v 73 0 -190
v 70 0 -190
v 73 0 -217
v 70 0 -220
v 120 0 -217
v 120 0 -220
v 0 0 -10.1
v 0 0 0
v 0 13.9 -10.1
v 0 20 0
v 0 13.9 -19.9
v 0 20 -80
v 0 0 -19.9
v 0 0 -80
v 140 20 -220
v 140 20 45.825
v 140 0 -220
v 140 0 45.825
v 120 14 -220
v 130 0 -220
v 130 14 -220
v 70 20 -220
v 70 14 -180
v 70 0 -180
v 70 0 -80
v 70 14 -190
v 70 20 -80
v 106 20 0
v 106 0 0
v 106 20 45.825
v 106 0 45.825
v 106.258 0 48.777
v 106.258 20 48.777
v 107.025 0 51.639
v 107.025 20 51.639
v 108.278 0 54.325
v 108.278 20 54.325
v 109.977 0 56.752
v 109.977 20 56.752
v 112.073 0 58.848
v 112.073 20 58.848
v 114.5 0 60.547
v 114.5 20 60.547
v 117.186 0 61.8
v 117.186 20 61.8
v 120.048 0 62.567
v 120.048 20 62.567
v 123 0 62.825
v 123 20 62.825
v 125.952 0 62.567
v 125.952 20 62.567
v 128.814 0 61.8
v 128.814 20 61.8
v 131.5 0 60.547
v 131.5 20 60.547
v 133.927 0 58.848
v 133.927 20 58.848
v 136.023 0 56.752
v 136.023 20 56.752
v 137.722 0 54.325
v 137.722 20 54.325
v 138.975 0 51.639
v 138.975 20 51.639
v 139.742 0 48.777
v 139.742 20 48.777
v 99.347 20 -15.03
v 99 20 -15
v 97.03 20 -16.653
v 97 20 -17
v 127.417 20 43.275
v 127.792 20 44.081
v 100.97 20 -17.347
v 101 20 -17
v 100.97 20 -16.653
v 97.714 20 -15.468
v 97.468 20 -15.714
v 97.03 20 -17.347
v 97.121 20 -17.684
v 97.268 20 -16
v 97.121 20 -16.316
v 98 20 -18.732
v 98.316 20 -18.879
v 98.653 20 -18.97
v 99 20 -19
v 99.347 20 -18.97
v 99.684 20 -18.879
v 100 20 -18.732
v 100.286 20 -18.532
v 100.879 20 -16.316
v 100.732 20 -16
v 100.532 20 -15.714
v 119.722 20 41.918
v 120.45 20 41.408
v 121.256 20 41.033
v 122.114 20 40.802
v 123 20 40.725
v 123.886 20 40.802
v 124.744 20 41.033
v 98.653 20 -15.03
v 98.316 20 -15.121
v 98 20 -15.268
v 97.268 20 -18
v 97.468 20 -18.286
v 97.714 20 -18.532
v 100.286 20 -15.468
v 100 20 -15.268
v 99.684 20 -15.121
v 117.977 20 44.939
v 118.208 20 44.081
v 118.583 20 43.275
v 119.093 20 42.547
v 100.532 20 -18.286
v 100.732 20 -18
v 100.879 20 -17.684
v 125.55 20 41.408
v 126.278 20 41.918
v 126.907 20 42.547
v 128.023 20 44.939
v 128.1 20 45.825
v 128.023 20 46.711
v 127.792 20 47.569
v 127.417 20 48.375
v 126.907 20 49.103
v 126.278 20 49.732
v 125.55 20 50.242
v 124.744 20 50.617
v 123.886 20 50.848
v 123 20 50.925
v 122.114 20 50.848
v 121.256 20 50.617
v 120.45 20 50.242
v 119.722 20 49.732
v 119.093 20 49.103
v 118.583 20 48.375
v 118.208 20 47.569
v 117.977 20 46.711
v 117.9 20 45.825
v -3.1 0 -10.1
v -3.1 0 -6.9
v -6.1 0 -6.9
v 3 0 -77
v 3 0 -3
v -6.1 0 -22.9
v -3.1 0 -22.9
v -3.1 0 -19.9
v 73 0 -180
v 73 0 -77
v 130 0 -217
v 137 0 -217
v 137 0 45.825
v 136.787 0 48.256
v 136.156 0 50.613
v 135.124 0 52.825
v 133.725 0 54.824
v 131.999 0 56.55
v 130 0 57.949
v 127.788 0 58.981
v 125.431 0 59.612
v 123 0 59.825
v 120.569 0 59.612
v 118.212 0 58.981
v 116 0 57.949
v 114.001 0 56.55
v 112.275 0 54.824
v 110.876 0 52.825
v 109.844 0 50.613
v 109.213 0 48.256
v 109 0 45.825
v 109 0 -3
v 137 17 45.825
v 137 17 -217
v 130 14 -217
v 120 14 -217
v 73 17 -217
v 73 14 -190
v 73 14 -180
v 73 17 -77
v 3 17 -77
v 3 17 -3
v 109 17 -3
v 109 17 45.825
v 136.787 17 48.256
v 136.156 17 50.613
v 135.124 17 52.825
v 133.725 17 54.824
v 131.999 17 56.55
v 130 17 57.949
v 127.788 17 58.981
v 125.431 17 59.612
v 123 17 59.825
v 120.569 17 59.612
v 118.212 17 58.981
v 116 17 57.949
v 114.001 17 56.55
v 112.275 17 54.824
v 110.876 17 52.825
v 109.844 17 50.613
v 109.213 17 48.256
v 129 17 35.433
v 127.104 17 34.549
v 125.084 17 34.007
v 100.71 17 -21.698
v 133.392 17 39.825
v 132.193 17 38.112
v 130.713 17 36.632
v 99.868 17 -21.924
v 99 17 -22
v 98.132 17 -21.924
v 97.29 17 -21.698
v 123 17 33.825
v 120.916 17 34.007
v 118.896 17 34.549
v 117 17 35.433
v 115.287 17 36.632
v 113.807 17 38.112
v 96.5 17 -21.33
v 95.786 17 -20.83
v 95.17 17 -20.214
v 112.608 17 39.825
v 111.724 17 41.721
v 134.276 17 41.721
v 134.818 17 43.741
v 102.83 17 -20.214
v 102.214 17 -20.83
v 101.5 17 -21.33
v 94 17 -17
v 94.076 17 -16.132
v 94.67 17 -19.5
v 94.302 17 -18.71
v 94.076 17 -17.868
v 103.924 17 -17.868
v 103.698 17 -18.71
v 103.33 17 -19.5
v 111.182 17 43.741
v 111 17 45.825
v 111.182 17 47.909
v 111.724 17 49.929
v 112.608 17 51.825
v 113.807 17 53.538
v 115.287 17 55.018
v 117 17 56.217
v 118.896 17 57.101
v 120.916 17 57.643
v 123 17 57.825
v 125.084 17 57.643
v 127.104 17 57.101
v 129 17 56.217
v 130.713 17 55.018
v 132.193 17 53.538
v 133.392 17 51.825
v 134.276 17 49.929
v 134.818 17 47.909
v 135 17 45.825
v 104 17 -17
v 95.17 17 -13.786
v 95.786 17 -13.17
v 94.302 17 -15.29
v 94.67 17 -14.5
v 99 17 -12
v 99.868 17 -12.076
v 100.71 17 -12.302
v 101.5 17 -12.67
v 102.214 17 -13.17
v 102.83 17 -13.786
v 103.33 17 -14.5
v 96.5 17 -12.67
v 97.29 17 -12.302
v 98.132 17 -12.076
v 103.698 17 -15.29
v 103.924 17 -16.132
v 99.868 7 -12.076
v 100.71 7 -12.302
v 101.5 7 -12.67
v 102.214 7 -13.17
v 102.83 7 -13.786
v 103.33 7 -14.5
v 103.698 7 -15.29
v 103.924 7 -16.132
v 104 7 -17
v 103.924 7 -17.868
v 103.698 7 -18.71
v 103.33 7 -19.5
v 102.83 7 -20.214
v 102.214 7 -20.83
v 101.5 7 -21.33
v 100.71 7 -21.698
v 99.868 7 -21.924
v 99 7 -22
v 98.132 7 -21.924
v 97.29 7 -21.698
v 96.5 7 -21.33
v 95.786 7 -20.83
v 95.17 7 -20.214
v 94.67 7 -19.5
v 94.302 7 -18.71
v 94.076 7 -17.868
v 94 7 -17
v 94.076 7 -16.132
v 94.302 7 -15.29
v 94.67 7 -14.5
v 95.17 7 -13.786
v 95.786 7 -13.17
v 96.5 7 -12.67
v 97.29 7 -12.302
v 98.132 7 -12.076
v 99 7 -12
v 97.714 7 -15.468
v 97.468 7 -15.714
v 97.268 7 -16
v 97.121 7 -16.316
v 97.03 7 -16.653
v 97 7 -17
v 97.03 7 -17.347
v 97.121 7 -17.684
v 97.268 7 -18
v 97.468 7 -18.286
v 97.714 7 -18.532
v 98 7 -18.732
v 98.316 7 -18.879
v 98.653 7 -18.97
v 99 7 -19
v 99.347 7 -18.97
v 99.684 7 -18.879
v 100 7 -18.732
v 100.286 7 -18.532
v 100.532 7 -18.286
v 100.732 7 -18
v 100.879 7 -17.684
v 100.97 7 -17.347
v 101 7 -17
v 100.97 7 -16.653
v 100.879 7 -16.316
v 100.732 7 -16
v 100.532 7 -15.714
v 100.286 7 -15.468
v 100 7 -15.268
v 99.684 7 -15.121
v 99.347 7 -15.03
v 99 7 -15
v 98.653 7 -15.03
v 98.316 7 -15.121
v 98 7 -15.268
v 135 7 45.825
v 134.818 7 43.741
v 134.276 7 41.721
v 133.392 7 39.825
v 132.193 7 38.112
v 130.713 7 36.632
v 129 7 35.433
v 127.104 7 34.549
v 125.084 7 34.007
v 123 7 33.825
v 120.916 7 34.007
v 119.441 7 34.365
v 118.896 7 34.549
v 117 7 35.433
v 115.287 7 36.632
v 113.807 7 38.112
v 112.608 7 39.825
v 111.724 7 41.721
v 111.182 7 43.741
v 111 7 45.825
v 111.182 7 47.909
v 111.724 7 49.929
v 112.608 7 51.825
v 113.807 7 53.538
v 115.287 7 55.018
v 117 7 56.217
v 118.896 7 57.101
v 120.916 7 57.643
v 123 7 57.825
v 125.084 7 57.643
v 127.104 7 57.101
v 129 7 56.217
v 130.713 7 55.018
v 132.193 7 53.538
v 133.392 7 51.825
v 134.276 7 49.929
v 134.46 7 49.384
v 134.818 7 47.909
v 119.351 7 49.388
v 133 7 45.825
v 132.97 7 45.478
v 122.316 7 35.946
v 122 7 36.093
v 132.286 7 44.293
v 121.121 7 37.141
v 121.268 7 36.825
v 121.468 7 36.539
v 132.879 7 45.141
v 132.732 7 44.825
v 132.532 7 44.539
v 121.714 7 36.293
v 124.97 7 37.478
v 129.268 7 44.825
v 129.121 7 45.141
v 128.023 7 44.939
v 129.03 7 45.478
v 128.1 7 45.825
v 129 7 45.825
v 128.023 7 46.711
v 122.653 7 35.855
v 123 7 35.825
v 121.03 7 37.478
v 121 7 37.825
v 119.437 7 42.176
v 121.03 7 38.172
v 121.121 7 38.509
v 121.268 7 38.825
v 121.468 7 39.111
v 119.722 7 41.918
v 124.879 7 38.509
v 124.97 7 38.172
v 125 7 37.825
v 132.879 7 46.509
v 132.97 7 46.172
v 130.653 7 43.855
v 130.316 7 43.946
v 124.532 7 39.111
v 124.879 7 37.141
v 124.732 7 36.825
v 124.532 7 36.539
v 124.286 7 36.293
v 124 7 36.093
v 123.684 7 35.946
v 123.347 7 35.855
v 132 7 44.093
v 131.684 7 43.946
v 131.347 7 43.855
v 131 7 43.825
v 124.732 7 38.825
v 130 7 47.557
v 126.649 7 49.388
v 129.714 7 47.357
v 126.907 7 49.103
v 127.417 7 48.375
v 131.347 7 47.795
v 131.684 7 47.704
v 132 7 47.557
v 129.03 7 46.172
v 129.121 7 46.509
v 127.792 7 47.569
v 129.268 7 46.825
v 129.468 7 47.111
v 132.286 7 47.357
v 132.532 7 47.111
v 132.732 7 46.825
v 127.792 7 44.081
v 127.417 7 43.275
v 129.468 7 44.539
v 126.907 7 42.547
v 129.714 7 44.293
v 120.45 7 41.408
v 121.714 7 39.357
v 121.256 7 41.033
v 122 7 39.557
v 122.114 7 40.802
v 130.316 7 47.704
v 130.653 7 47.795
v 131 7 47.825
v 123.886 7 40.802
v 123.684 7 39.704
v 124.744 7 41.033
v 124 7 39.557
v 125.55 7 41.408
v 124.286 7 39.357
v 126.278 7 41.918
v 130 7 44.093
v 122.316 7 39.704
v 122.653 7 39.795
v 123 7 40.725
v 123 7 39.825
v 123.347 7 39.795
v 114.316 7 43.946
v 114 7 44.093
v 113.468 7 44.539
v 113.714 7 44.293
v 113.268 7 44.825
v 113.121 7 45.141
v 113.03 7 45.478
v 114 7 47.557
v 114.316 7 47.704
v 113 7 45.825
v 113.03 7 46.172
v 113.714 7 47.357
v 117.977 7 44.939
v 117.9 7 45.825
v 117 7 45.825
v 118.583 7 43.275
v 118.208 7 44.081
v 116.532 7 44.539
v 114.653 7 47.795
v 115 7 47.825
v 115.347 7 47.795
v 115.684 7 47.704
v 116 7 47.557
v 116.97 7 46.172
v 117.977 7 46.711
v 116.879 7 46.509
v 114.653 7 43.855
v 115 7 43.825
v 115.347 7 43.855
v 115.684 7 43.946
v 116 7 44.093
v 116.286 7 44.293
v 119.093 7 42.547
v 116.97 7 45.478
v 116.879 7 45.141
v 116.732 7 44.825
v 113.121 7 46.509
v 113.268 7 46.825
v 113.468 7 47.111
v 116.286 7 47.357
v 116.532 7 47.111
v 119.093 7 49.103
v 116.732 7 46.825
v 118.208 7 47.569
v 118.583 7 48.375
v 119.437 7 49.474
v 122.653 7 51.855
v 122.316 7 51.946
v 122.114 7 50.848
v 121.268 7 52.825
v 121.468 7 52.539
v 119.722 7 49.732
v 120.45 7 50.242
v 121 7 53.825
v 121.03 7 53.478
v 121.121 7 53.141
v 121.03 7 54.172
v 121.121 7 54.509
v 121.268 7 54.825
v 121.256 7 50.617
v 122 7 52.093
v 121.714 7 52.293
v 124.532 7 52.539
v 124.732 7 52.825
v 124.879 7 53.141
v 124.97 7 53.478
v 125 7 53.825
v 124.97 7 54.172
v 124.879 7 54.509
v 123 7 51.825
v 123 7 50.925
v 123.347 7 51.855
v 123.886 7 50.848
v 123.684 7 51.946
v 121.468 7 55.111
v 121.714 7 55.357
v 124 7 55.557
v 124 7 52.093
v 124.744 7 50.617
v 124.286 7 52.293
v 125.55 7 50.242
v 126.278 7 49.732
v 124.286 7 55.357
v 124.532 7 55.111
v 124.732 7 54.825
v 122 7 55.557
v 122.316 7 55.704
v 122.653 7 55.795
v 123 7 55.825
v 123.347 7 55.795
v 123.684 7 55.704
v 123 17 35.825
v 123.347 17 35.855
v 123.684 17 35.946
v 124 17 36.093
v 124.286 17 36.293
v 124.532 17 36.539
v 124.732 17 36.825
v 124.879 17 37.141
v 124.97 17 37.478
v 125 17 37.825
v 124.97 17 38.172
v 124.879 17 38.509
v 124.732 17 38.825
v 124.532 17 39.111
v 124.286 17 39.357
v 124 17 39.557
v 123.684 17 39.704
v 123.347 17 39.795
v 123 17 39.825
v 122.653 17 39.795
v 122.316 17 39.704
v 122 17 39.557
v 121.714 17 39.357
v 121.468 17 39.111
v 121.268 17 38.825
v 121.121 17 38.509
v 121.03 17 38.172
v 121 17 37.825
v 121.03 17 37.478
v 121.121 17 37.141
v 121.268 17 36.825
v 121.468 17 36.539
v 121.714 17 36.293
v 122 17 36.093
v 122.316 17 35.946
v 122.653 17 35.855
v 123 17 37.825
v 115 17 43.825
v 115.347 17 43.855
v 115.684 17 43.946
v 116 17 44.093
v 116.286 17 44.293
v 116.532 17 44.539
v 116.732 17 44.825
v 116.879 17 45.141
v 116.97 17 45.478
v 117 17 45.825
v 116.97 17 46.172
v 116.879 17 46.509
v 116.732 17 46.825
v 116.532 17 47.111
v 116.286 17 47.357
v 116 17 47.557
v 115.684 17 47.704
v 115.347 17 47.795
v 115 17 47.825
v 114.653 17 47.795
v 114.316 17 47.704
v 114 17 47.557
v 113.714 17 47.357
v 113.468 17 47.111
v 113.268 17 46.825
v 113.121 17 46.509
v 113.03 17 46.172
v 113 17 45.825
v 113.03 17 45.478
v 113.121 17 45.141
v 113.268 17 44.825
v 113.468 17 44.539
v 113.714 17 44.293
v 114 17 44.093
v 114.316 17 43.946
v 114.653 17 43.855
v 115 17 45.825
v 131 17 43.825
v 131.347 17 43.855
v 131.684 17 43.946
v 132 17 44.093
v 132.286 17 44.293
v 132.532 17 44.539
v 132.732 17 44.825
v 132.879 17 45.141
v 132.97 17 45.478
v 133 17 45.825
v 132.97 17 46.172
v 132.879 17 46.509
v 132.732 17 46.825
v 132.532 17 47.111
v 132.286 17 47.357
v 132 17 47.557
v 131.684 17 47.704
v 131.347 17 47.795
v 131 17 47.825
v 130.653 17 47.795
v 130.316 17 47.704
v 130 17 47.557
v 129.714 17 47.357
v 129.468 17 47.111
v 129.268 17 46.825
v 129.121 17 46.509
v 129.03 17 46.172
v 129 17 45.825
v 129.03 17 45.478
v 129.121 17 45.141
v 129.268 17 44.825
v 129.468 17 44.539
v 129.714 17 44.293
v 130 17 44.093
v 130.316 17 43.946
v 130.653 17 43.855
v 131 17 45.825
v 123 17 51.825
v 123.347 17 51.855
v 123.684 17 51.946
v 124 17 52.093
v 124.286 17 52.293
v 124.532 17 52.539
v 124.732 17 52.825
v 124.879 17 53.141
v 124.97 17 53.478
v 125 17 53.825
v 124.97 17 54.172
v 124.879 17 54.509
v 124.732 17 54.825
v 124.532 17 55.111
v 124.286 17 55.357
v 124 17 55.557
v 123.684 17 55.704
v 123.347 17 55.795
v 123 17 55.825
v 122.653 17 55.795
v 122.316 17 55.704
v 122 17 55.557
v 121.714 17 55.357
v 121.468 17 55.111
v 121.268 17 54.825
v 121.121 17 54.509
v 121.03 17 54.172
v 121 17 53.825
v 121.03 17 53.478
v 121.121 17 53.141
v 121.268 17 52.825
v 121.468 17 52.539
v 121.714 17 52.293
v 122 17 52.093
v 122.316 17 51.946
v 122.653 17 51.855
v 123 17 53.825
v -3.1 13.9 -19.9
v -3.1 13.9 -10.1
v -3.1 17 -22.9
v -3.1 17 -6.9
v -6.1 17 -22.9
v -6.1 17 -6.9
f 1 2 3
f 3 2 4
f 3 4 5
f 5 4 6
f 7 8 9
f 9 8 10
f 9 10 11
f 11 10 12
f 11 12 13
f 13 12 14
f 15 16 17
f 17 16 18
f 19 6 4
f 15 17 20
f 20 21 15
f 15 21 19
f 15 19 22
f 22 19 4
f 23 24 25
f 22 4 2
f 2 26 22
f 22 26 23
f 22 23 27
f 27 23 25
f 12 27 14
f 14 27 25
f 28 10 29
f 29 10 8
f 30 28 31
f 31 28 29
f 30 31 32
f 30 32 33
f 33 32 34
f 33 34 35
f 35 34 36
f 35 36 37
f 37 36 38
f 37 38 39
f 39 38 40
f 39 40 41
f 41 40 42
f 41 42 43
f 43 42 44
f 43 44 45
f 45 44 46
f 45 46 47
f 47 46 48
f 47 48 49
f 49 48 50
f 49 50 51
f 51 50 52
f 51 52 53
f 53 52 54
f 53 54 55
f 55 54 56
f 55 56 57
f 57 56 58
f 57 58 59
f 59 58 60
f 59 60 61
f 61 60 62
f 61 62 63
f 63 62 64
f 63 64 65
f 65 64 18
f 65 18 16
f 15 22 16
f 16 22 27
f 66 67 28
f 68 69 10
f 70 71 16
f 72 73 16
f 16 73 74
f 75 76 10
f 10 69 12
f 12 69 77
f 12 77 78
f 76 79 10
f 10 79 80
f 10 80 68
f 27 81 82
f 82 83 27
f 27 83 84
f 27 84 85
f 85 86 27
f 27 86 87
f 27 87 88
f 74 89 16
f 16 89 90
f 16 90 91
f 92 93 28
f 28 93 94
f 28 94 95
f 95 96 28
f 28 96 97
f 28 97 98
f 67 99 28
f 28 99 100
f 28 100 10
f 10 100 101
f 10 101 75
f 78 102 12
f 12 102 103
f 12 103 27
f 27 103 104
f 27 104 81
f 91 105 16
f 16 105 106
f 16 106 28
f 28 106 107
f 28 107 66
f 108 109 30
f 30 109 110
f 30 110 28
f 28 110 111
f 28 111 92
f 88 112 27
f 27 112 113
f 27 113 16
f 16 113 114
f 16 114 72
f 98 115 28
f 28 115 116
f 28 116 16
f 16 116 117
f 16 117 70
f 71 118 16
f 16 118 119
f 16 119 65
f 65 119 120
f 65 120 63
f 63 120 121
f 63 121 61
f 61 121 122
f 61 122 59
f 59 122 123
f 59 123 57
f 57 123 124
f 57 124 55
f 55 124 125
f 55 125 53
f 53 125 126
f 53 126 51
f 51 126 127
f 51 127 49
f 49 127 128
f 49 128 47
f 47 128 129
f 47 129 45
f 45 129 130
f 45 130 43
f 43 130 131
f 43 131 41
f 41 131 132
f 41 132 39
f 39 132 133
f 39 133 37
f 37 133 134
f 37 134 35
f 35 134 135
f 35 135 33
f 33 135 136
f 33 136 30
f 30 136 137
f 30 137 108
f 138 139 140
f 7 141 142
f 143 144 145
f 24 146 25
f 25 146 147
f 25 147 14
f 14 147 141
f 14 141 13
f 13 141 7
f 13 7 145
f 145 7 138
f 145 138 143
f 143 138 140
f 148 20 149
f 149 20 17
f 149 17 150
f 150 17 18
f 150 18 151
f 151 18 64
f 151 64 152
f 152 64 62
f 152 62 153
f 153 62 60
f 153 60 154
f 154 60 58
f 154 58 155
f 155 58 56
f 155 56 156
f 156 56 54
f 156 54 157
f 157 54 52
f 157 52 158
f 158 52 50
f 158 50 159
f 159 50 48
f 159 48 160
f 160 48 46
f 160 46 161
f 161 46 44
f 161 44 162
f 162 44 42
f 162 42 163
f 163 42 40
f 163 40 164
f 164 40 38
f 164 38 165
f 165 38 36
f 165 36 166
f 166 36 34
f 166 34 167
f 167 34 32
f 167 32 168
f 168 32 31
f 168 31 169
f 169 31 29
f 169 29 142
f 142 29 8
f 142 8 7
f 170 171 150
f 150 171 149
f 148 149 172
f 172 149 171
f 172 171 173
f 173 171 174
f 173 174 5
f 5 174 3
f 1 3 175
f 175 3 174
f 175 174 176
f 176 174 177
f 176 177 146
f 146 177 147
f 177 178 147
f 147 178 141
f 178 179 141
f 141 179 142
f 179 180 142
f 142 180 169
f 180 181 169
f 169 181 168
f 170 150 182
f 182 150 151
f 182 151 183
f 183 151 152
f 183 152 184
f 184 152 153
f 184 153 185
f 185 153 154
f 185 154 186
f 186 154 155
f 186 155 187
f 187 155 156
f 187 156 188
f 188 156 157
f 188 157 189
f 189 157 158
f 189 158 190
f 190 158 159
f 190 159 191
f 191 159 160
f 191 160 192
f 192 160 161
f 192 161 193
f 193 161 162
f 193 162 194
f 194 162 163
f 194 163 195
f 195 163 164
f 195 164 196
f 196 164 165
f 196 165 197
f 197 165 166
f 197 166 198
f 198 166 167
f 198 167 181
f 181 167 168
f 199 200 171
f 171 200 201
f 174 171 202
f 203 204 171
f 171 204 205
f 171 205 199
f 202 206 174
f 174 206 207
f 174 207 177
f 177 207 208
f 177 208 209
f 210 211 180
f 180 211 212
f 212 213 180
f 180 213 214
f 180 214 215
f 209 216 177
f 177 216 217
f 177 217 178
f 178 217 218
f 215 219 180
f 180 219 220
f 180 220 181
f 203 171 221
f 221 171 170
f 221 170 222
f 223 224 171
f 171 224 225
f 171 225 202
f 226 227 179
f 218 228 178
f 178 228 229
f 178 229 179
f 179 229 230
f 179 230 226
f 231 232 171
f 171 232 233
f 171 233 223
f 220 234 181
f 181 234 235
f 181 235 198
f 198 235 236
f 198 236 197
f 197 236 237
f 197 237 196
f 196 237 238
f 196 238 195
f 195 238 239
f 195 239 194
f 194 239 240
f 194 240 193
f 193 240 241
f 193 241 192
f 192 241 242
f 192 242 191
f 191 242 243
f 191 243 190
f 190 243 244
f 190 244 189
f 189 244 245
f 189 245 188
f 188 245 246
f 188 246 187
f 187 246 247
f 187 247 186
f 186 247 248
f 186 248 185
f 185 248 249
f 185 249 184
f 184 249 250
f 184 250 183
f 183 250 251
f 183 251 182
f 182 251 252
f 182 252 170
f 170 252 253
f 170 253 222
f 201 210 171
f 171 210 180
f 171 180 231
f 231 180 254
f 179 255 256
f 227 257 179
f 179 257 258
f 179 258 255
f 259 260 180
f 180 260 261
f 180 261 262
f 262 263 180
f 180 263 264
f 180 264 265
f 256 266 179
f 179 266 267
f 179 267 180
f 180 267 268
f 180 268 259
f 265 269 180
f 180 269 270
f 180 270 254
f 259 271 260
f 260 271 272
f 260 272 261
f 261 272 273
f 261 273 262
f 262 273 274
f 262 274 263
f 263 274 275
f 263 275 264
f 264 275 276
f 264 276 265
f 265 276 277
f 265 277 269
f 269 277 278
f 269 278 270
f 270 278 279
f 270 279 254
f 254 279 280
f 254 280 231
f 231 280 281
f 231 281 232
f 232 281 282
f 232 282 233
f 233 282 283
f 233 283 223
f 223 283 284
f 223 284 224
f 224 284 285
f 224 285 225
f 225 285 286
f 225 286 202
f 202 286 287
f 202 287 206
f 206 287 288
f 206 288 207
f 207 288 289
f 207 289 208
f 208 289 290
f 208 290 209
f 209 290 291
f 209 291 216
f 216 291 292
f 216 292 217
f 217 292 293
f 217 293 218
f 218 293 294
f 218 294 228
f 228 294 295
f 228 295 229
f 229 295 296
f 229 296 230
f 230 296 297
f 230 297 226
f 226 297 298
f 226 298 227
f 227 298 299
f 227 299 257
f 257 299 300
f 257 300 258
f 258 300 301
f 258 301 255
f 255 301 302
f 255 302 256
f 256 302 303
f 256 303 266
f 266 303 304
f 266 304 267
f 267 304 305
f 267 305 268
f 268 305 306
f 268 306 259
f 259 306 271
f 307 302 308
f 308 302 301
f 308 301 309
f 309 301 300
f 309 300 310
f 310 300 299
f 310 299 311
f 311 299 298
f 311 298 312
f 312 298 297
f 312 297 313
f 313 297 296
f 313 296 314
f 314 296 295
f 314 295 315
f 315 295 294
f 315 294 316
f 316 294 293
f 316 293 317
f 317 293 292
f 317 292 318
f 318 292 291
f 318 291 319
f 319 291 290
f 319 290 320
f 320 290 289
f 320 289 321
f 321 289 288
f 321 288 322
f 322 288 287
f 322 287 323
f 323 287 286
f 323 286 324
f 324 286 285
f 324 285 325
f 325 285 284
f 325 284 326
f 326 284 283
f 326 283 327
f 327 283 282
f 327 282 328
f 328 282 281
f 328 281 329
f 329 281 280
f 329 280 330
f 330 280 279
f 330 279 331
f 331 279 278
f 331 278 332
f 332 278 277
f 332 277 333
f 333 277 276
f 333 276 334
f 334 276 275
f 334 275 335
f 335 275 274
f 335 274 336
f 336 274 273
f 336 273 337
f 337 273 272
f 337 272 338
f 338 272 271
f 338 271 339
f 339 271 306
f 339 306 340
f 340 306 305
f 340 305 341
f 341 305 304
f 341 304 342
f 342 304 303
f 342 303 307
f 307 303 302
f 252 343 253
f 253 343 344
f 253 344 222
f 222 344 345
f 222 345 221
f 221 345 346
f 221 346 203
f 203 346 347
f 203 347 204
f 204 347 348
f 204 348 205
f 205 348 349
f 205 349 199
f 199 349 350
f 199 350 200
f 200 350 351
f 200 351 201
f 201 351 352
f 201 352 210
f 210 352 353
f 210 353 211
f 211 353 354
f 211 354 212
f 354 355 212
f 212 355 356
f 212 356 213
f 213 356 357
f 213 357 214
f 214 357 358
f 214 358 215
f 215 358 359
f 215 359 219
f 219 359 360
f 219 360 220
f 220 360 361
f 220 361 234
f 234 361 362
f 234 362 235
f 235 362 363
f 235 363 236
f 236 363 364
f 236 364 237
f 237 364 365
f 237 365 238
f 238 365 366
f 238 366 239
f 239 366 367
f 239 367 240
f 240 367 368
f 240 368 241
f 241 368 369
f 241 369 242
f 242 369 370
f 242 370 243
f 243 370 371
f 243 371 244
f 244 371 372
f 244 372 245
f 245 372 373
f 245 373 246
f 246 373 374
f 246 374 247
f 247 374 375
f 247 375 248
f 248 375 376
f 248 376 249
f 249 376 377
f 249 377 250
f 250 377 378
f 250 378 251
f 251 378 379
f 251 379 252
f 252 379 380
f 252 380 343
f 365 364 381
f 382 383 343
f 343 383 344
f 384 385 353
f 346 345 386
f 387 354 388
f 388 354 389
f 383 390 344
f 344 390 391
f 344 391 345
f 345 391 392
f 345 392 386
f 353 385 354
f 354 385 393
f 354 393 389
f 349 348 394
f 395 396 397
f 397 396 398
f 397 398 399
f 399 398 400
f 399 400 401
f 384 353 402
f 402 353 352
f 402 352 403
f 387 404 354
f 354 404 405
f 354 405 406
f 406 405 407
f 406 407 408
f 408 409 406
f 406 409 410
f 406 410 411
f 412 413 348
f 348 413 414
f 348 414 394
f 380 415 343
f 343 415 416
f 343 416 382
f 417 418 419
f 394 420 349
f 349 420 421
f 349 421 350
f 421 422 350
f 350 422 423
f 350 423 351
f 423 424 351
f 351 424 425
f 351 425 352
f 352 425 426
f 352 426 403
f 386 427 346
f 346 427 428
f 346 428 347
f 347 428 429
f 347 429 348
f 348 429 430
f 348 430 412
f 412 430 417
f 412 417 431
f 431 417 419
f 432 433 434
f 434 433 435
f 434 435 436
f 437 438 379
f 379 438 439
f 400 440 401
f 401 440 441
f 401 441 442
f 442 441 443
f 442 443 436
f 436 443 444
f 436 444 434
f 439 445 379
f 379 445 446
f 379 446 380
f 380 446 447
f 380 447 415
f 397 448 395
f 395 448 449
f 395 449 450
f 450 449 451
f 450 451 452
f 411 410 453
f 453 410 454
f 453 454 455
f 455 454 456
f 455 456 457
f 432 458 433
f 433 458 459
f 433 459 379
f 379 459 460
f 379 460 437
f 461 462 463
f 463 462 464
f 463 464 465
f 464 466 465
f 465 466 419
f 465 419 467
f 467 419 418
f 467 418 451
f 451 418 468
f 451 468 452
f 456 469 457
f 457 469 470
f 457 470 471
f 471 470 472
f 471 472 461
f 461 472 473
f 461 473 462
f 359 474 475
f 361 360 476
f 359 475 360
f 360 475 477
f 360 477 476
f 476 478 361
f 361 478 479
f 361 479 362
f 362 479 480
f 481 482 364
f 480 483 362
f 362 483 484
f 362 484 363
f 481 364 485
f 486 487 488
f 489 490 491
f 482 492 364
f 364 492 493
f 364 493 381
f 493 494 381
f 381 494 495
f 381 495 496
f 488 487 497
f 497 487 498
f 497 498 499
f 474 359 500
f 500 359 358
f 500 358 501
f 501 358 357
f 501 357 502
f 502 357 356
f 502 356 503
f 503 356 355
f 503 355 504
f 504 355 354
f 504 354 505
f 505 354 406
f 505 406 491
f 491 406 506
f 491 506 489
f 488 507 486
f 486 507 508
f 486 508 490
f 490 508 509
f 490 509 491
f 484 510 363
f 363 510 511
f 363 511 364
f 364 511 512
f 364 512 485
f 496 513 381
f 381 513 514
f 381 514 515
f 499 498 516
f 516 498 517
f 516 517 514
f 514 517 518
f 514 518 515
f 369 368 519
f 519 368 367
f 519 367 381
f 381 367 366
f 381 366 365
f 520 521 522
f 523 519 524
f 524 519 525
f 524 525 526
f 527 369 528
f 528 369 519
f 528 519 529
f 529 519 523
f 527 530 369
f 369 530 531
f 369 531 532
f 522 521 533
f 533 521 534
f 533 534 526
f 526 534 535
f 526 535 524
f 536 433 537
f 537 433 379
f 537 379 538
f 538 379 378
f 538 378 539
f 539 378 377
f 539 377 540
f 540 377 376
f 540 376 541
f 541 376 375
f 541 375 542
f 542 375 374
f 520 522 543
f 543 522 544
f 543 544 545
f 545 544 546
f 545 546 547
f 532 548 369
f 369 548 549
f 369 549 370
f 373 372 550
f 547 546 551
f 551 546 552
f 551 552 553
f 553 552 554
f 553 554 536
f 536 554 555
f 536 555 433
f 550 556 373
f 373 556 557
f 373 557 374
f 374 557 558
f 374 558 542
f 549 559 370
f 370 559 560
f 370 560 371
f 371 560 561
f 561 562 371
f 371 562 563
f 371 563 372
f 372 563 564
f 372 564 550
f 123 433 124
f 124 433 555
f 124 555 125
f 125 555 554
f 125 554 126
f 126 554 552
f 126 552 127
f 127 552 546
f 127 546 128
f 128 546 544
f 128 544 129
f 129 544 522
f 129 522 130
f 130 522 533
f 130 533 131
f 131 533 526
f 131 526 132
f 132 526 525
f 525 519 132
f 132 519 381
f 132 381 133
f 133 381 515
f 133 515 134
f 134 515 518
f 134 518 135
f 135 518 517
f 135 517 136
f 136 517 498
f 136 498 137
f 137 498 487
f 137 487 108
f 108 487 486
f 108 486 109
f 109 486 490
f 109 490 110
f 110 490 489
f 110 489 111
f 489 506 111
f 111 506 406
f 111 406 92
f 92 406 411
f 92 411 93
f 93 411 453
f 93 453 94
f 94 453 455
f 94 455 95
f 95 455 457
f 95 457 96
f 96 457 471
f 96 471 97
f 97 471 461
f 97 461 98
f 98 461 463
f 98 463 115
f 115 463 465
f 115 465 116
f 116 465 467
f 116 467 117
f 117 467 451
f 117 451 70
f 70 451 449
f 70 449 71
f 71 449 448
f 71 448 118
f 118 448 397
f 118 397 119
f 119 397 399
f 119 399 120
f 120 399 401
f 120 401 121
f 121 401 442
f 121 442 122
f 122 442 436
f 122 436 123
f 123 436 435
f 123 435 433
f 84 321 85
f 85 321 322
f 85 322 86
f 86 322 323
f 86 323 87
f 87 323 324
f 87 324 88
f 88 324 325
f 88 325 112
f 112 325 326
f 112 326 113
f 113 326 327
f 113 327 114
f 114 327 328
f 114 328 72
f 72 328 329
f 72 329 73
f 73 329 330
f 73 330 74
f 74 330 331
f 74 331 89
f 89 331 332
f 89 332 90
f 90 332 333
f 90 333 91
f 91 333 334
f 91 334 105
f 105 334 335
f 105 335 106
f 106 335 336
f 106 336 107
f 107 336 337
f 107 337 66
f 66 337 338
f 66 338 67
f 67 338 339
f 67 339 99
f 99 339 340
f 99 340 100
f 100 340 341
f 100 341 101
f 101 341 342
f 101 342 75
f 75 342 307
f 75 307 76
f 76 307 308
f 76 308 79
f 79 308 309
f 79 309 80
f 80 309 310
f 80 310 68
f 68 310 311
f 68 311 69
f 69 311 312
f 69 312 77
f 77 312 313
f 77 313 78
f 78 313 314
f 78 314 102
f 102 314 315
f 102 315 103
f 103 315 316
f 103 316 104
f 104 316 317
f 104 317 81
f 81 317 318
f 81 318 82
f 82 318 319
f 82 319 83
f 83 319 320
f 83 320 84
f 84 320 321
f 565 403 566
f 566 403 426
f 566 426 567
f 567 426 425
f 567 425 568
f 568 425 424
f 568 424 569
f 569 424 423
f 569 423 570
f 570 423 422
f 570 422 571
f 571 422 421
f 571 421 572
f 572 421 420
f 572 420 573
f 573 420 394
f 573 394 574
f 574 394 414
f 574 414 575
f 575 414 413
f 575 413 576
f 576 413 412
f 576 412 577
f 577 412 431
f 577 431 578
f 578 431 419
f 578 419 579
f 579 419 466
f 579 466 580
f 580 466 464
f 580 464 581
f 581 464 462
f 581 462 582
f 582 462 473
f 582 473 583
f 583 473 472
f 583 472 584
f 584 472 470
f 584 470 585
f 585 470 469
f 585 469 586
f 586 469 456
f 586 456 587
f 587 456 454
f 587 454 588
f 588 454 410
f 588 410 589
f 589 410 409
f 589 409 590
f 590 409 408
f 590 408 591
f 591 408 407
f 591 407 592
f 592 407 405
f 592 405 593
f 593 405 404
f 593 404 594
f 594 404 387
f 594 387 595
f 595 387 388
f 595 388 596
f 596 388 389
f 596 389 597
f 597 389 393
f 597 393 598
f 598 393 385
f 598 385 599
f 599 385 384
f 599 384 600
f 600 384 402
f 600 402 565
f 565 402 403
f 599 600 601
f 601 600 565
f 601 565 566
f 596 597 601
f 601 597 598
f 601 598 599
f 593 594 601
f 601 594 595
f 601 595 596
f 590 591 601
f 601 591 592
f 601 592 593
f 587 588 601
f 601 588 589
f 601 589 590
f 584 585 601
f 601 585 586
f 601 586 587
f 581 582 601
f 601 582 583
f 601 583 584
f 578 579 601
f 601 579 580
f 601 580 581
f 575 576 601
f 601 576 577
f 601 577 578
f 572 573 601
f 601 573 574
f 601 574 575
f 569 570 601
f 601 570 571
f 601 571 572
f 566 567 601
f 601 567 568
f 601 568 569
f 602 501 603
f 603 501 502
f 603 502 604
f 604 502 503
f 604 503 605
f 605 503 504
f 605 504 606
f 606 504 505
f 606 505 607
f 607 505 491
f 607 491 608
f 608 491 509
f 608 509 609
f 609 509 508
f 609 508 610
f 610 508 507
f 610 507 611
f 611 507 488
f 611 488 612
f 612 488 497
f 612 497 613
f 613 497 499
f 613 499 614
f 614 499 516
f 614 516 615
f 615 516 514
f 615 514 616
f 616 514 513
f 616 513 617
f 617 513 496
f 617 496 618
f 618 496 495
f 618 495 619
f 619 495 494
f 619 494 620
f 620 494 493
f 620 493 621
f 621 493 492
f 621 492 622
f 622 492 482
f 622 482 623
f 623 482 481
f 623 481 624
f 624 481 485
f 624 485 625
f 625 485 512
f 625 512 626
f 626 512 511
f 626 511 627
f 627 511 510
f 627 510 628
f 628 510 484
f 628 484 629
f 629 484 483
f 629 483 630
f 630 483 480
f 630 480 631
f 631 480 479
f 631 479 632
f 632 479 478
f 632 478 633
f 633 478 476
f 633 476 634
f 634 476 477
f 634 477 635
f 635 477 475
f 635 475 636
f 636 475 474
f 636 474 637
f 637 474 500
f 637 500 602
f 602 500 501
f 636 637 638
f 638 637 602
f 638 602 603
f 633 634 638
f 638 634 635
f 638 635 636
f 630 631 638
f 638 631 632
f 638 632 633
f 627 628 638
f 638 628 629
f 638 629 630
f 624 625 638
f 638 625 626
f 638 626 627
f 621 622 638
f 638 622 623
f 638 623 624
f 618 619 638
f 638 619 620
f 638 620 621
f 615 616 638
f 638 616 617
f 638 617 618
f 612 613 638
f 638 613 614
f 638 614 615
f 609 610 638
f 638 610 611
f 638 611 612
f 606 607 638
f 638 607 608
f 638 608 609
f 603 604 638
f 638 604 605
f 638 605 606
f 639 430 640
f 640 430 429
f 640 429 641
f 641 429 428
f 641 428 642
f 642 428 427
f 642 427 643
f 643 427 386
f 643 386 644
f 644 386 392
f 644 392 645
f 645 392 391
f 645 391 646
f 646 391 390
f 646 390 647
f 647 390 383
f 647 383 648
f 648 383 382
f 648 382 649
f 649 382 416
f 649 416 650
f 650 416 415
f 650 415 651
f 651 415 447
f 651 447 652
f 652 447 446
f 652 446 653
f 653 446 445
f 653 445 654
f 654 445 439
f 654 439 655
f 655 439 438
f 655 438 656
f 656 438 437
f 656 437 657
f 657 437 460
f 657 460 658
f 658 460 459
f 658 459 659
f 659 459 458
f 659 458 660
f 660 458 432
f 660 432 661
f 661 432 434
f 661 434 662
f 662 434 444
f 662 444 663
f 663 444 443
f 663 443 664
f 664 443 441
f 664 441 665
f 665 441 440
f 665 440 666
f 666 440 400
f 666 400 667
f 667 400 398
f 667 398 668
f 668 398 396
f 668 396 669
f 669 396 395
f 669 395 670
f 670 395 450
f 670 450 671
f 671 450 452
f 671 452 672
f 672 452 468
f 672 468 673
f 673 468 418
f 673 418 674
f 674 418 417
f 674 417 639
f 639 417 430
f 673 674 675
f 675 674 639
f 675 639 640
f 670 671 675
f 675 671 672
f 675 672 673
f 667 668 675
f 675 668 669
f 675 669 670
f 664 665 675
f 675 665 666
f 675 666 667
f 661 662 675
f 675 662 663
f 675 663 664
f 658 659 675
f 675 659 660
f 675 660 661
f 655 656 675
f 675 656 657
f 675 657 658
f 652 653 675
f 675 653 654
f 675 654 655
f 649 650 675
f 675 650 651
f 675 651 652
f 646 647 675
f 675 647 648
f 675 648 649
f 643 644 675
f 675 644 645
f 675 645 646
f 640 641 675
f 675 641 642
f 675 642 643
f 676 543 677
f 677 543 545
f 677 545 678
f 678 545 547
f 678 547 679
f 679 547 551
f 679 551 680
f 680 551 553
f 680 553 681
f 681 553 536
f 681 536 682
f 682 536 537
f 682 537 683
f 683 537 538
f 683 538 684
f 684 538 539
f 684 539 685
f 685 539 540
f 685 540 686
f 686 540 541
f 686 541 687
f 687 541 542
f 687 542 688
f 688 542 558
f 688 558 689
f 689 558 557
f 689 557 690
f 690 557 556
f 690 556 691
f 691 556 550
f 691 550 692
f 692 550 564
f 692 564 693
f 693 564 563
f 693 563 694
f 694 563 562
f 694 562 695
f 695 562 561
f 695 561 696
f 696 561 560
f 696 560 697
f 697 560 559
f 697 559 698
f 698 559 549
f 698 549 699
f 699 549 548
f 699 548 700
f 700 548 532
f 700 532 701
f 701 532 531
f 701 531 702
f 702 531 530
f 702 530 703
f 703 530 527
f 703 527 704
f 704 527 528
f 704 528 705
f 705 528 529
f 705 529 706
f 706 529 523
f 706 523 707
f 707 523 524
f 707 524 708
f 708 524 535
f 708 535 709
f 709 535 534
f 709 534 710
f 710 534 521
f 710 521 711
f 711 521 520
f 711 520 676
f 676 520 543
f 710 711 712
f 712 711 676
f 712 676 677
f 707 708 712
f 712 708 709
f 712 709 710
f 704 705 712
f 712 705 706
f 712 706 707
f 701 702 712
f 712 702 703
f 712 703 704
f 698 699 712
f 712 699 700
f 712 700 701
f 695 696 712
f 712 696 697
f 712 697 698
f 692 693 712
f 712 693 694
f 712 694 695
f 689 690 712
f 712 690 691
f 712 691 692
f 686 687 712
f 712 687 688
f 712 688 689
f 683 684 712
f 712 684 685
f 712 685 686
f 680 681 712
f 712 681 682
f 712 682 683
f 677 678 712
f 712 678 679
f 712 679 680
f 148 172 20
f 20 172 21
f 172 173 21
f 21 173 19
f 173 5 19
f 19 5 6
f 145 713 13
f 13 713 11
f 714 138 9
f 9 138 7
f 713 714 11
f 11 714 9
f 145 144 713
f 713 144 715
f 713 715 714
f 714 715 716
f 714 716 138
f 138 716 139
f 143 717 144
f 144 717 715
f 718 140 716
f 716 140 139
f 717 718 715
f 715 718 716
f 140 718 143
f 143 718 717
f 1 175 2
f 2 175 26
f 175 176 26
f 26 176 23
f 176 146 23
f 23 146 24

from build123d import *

# Parameters (mm, degrees)
CORNERBOSS_EXTRUDE1_DEPTH               = 20
SHELL1_T                                = -3
PADSKETCH1_R                            = 5
PADSKETCH1_R_2                          = 12
PADBOSS_EXTRUDE1_DEPTH                  = 10
STEPPERSHAFTCUT_SKETCH3_R               = 5.1
STEPPERSHAFTCUT_SKETCH3_R_2             = 2
STEPPERSHAFTCUT_EXTRUDE1_DEPTH          = 262.09193783
THREADEDNUTMOUNTHOLESSKETCH5_R          = 2
THREADEDNUTMOUNTHOLESCUT_EXTRUDE2_DEPTH = 10
TOPPEGHOLESKETCH4_W                     = 10
TOPPEGHOLESKETCH4_H                     = 14
TOPPEGHOLECUT_EXTRUDE2_DEPTH            = 3
BLPEGSKETCH5_W                          = 9.8
BLPEGSKETCH5_H                          = 13.9
BLPEGBOSS_EXTRUDE3_DEPTH                = 3.1
BLPEGCAPSKETCH6_W                       = 16
BLPEGCAPSKETCH6_H                       = 17
BLPEGCAPBOSS_EXTRUDE4_DEPTH             = 3
BEDCENTERPEGHOLECUTSKETCH1_W            = 10
BEDCENTERPEGHOLECUTSKETCH1_H            = 14
BEDCENTERPEGHOLECUT_EXTRUDE1_DEPTH      = 3


with BuildPart() as part:
    # CornerrSketch1 → CornerBoss-Extrude1 (new body)
    with BuildSketch(Plane(origin=(0, 0, 0), x_dir=(1, 0, 0), z_dir=(0, 1, 0))):
        with BuildLine():
            Line((0, 0), (0, 80))
            Line((0, 80), (70, 80))
            Line((70, 80), (70, 220))
            Line((70, 220), (140, 220))
            Line((140, 220), (140, -45.825))
            ThreePointArc((140, -45.825), (123, -62.825), (106, -45.825))
            Line((106, -45.825), (106, 0))
            Line((106, 0), (0, 0))
        make_face()
    extrude(amount=CORNERBOSS_EXTRUDE1_DEPTH)

    # Shell1
    shell1_openings = [part.faces().sort_by_distance(p)[0] for p in [
        (89.539211683, 0, -80.750143578),
    ]]
    offset(amount=SHELL1_T, openings=shell1_openings, kind=Kind.INTERSECTION)

    # PadSketch1 → PadBoss-Extrude1 (add)
    with BuildSketch(Plane.XZ.offset(-17)):
        with Locations(Location((99, -17, 0), (0, 0, 90))):
            Circle(PADSKETCH1_R)
        with Locations(Location((123, 45.825, 0), (0, 0, 90))):
            Circle(PADSKETCH1_R_2)
    extrude(amount=PADBOSS_EXTRUDE1_DEPTH)

    # StepperShaftCut-Sketch3 → StepperShaftCut-Extrude1 (cut, through all)
    with BuildSketch(Plane.XZ.offset(-7)):
        with Locations(Location((123, 45.825, 0), (0, 0, 270))):
            Circle(STEPPERSHAFTCUT_SKETCH3_R)
        with Locations(Location((99, -17, 0), (0, 0, 270))):
            Circle(STEPPERSHAFTCUT_SKETCH3_R_2)
    extrude(amount=-STEPPERSHAFTCUT_EXTRUDE1_DEPTH, mode=Mode.SUBTRACT)

    # ThreadedNutMountHolesSketch5 → ThreadedNutMountHolesCut-Extrude2 (cut)
    with BuildSketch(Plane.XZ.offset(-7)):
        with Locations(Location((123, 53.825, 0), (0, 0, 270))):
            Circle(THREADEDNUTMOUNTHOLESSKETCH5_R)
        with Locations(Location((131, 45.825, 0), (0, 0, 270))):
            Circle(THREADEDNUTMOUNTHOLESSKETCH5_R)
        with Locations(Location((115, 45.825, 0), (0, 0, 270))):
            Circle(THREADEDNUTMOUNTHOLESSKETCH5_R)
        with Locations(Location((123, 37.825, 0), (0, 0, 270))):
            Circle(THREADEDNUTMOUNTHOLESSKETCH5_R)
    extrude(amount=-THREADEDNUTMOUNTHOLESCUT_EXTRUDE2_DEPTH, mode=Mode.SUBTRACT)

    # TopPegHoleSketch4 → TopPegHoleCut-Extrude2 (cut)
    with BuildSketch(Plane(origin=(0, 0, -220), x_dir=(-1, 0, 0), z_dir=(0, 0, -1))):
        with Locations((-125, 7)):
            Rectangle(TOPPEGHOLESKETCH4_W, TOPPEGHOLESKETCH4_H)
    extrude(amount=-TOPPEGHOLECUT_EXTRUDE2_DEPTH, mode=Mode.SUBTRACT)

    # BLPegSketch5 → BLPegBoss-Extrude3 (add)
    with BuildSketch(Plane.ZY):
        with Locations((-15, 6.95)):
            Rectangle(BLPEGSKETCH5_W, BLPEGSKETCH5_H)
    extrude(amount=BLPEGBOSS_EXTRUDE3_DEPTH)

    # BLPegCapSketch6 → BLPegCapBoss-Extrude4 (add)
    with BuildSketch(Plane.ZY.offset(3.1)):
        with Locations((-14.9, 8.5)):
            Rectangle(BLPEGCAPSKETCH6_W, BLPEGCAPSKETCH6_H)
    extrude(amount=BLPEGCAPBOSS_EXTRUDE4_DEPTH)

    # BedCenterPegHoleCutSketch1 → BedCenterPegHoleCut-Extrude1 (cut)
    with BuildSketch(Plane.ZY.offset(-70)):
        with Locations((-185, 7)):
            Rectangle(BEDCENTERPEGHOLECUTSKETCH1_W, BEDCENTERPEGHOLECUTSKETCH1_H)
    extrude(amount=-BEDCENTERPEGHOLECUT_EXTRUDE1_DEPTH, mode=Mode.SUBTRACT)


solid = part.part
